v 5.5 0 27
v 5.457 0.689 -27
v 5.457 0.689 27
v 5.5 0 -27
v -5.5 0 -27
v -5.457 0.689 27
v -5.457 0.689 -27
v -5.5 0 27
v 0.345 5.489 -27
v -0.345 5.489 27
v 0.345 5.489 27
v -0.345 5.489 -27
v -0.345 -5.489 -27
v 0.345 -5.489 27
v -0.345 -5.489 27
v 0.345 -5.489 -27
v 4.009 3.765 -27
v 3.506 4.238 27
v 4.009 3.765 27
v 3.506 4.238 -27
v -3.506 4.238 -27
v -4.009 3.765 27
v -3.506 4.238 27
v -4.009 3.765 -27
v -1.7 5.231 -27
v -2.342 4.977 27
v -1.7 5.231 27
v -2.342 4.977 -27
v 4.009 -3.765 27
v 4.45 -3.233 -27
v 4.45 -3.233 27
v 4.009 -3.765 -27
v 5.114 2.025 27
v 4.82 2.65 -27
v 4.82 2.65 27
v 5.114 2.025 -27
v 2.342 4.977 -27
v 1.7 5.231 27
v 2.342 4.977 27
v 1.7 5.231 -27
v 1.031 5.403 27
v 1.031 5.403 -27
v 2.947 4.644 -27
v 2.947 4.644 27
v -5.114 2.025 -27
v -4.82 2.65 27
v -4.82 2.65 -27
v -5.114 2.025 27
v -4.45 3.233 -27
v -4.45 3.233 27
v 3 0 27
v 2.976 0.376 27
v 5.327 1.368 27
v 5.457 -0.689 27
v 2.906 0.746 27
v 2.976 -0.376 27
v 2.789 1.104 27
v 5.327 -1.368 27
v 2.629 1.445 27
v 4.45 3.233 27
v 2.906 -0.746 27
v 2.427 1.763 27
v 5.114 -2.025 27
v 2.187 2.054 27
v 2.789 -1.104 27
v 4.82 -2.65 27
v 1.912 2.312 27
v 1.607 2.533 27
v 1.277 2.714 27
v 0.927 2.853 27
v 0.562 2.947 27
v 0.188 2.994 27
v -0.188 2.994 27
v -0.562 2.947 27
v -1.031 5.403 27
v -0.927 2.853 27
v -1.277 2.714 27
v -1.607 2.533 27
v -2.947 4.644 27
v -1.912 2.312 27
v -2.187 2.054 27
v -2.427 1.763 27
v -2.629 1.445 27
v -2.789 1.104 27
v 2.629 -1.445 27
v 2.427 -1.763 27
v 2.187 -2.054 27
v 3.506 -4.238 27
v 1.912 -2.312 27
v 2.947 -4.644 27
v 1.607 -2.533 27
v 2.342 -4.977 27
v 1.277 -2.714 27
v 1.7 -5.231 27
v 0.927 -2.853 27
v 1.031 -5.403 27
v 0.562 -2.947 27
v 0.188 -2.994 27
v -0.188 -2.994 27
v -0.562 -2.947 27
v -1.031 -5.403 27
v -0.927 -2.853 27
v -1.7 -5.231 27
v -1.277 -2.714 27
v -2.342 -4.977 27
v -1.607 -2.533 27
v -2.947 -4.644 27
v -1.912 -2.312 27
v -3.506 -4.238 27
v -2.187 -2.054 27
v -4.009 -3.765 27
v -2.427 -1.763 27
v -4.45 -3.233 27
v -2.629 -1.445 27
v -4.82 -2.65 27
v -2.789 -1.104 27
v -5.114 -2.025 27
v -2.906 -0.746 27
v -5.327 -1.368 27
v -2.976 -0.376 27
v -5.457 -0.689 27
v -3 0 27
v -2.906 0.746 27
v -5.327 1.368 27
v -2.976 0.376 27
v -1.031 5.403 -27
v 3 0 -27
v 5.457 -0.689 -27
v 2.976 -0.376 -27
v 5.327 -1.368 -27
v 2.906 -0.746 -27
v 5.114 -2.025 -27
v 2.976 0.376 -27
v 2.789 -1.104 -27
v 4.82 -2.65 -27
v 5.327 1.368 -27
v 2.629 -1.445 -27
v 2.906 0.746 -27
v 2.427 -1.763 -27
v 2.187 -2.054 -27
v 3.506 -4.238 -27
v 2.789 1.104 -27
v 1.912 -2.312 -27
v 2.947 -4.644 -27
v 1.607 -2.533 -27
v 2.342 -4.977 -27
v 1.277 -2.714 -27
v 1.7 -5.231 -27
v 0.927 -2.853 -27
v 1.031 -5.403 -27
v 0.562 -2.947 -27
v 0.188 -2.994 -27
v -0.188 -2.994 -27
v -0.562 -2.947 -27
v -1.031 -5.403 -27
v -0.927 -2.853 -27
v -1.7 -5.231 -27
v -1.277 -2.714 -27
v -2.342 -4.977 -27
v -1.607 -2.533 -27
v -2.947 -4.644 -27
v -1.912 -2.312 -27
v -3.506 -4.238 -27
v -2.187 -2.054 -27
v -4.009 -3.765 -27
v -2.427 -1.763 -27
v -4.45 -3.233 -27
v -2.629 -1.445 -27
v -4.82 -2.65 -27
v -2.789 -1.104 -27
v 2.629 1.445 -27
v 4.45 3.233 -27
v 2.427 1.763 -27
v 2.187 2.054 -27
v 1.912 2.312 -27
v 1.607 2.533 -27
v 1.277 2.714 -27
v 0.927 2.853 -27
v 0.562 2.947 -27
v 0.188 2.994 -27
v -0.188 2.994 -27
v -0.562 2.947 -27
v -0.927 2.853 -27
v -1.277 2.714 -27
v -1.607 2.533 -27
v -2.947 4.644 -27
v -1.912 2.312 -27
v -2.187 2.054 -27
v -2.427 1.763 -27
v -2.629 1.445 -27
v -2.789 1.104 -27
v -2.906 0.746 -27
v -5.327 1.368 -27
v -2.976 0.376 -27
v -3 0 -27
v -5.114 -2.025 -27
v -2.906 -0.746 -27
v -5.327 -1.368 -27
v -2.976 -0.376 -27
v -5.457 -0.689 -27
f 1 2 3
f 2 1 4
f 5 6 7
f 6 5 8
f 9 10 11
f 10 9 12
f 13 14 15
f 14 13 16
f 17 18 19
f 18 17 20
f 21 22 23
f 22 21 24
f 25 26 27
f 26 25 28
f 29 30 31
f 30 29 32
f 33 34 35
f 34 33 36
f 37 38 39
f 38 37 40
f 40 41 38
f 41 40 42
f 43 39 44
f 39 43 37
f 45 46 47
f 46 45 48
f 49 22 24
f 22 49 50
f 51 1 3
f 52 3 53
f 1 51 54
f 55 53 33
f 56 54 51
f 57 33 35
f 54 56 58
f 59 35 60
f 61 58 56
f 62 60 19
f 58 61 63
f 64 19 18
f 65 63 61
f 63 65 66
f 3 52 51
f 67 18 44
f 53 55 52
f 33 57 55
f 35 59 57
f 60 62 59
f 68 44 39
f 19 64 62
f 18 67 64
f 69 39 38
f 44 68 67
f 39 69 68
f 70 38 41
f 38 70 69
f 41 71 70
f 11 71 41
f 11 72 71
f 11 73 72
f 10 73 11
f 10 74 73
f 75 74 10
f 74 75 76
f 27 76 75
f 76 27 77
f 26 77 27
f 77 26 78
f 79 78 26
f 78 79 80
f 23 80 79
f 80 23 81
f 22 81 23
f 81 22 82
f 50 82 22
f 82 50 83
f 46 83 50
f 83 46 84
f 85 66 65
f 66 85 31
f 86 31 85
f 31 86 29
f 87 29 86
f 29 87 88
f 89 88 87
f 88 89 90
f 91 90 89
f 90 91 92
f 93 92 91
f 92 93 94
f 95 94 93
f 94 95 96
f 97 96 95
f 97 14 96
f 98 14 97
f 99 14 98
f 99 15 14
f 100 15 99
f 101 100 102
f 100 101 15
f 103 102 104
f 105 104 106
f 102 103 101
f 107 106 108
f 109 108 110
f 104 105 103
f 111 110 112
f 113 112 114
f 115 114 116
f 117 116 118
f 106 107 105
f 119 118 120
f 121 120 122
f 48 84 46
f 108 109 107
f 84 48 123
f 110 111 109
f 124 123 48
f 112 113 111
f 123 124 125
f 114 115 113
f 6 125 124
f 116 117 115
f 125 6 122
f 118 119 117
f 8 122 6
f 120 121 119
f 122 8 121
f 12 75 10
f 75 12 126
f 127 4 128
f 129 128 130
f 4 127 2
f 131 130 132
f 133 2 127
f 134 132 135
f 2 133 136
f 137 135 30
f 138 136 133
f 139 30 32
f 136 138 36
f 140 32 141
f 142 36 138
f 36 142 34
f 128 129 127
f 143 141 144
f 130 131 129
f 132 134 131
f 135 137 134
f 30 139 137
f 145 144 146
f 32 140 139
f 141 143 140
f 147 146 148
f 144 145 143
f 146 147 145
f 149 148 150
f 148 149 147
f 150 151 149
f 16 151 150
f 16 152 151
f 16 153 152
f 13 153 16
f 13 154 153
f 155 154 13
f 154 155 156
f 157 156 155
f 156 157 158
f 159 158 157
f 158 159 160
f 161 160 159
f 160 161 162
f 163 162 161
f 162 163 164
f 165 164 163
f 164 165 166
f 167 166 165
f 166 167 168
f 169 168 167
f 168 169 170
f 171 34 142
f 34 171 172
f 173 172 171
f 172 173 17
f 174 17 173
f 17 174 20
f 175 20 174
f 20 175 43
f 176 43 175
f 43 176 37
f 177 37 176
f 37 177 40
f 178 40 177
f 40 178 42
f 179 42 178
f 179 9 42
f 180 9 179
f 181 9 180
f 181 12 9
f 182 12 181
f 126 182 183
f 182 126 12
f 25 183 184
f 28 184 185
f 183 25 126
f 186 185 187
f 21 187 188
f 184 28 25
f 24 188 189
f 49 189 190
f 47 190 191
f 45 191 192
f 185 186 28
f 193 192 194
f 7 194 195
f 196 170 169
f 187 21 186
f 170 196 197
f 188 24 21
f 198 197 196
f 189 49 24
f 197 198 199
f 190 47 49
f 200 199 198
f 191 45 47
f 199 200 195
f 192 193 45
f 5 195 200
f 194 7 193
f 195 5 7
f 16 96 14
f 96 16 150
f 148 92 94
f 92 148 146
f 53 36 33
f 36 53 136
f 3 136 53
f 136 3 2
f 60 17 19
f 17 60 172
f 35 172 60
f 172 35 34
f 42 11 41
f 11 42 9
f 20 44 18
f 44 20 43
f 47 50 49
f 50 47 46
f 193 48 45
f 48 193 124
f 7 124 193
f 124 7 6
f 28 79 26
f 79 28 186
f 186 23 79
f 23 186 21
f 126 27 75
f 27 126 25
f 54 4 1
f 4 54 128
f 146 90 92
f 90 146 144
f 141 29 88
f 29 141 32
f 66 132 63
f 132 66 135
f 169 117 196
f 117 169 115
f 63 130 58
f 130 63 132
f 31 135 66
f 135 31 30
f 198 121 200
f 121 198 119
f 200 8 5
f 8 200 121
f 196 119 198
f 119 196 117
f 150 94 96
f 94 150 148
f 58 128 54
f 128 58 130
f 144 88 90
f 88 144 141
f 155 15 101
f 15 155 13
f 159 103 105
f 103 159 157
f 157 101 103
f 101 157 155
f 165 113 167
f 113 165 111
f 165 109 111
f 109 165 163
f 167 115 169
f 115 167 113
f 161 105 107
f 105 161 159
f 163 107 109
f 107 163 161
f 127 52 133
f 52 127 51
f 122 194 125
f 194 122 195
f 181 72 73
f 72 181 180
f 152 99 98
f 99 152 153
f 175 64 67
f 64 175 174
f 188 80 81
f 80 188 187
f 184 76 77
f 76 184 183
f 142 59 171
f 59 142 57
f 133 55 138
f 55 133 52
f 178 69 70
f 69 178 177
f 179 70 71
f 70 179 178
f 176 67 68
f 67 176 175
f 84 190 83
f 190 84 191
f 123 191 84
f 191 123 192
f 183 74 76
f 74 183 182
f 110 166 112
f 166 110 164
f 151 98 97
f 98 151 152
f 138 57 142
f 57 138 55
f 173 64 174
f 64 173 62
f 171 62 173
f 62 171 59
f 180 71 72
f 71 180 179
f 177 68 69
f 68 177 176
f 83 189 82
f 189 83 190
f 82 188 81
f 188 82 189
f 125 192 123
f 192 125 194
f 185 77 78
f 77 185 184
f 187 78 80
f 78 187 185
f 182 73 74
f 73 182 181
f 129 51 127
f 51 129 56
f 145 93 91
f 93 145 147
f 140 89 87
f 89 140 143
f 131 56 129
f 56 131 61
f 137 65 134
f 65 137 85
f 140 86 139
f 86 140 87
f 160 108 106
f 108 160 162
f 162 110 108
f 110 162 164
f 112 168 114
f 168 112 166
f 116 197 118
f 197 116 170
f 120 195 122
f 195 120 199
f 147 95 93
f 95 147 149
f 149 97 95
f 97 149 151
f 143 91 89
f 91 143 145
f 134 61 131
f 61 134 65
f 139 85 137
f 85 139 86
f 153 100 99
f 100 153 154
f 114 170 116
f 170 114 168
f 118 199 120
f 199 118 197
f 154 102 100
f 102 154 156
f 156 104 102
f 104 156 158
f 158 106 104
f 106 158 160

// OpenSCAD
$fn = 50;


difference() {
	union() {
		translate(v = [0, 0, -27.0000000000]) {
			cylinder(h = 54, r = 5.5000000000);
		}
	}
	union() {
		translate(v = [0, 0, -100.0000000000]) {
			cylinder(h = 200, r = 3);
		}
	}
}
